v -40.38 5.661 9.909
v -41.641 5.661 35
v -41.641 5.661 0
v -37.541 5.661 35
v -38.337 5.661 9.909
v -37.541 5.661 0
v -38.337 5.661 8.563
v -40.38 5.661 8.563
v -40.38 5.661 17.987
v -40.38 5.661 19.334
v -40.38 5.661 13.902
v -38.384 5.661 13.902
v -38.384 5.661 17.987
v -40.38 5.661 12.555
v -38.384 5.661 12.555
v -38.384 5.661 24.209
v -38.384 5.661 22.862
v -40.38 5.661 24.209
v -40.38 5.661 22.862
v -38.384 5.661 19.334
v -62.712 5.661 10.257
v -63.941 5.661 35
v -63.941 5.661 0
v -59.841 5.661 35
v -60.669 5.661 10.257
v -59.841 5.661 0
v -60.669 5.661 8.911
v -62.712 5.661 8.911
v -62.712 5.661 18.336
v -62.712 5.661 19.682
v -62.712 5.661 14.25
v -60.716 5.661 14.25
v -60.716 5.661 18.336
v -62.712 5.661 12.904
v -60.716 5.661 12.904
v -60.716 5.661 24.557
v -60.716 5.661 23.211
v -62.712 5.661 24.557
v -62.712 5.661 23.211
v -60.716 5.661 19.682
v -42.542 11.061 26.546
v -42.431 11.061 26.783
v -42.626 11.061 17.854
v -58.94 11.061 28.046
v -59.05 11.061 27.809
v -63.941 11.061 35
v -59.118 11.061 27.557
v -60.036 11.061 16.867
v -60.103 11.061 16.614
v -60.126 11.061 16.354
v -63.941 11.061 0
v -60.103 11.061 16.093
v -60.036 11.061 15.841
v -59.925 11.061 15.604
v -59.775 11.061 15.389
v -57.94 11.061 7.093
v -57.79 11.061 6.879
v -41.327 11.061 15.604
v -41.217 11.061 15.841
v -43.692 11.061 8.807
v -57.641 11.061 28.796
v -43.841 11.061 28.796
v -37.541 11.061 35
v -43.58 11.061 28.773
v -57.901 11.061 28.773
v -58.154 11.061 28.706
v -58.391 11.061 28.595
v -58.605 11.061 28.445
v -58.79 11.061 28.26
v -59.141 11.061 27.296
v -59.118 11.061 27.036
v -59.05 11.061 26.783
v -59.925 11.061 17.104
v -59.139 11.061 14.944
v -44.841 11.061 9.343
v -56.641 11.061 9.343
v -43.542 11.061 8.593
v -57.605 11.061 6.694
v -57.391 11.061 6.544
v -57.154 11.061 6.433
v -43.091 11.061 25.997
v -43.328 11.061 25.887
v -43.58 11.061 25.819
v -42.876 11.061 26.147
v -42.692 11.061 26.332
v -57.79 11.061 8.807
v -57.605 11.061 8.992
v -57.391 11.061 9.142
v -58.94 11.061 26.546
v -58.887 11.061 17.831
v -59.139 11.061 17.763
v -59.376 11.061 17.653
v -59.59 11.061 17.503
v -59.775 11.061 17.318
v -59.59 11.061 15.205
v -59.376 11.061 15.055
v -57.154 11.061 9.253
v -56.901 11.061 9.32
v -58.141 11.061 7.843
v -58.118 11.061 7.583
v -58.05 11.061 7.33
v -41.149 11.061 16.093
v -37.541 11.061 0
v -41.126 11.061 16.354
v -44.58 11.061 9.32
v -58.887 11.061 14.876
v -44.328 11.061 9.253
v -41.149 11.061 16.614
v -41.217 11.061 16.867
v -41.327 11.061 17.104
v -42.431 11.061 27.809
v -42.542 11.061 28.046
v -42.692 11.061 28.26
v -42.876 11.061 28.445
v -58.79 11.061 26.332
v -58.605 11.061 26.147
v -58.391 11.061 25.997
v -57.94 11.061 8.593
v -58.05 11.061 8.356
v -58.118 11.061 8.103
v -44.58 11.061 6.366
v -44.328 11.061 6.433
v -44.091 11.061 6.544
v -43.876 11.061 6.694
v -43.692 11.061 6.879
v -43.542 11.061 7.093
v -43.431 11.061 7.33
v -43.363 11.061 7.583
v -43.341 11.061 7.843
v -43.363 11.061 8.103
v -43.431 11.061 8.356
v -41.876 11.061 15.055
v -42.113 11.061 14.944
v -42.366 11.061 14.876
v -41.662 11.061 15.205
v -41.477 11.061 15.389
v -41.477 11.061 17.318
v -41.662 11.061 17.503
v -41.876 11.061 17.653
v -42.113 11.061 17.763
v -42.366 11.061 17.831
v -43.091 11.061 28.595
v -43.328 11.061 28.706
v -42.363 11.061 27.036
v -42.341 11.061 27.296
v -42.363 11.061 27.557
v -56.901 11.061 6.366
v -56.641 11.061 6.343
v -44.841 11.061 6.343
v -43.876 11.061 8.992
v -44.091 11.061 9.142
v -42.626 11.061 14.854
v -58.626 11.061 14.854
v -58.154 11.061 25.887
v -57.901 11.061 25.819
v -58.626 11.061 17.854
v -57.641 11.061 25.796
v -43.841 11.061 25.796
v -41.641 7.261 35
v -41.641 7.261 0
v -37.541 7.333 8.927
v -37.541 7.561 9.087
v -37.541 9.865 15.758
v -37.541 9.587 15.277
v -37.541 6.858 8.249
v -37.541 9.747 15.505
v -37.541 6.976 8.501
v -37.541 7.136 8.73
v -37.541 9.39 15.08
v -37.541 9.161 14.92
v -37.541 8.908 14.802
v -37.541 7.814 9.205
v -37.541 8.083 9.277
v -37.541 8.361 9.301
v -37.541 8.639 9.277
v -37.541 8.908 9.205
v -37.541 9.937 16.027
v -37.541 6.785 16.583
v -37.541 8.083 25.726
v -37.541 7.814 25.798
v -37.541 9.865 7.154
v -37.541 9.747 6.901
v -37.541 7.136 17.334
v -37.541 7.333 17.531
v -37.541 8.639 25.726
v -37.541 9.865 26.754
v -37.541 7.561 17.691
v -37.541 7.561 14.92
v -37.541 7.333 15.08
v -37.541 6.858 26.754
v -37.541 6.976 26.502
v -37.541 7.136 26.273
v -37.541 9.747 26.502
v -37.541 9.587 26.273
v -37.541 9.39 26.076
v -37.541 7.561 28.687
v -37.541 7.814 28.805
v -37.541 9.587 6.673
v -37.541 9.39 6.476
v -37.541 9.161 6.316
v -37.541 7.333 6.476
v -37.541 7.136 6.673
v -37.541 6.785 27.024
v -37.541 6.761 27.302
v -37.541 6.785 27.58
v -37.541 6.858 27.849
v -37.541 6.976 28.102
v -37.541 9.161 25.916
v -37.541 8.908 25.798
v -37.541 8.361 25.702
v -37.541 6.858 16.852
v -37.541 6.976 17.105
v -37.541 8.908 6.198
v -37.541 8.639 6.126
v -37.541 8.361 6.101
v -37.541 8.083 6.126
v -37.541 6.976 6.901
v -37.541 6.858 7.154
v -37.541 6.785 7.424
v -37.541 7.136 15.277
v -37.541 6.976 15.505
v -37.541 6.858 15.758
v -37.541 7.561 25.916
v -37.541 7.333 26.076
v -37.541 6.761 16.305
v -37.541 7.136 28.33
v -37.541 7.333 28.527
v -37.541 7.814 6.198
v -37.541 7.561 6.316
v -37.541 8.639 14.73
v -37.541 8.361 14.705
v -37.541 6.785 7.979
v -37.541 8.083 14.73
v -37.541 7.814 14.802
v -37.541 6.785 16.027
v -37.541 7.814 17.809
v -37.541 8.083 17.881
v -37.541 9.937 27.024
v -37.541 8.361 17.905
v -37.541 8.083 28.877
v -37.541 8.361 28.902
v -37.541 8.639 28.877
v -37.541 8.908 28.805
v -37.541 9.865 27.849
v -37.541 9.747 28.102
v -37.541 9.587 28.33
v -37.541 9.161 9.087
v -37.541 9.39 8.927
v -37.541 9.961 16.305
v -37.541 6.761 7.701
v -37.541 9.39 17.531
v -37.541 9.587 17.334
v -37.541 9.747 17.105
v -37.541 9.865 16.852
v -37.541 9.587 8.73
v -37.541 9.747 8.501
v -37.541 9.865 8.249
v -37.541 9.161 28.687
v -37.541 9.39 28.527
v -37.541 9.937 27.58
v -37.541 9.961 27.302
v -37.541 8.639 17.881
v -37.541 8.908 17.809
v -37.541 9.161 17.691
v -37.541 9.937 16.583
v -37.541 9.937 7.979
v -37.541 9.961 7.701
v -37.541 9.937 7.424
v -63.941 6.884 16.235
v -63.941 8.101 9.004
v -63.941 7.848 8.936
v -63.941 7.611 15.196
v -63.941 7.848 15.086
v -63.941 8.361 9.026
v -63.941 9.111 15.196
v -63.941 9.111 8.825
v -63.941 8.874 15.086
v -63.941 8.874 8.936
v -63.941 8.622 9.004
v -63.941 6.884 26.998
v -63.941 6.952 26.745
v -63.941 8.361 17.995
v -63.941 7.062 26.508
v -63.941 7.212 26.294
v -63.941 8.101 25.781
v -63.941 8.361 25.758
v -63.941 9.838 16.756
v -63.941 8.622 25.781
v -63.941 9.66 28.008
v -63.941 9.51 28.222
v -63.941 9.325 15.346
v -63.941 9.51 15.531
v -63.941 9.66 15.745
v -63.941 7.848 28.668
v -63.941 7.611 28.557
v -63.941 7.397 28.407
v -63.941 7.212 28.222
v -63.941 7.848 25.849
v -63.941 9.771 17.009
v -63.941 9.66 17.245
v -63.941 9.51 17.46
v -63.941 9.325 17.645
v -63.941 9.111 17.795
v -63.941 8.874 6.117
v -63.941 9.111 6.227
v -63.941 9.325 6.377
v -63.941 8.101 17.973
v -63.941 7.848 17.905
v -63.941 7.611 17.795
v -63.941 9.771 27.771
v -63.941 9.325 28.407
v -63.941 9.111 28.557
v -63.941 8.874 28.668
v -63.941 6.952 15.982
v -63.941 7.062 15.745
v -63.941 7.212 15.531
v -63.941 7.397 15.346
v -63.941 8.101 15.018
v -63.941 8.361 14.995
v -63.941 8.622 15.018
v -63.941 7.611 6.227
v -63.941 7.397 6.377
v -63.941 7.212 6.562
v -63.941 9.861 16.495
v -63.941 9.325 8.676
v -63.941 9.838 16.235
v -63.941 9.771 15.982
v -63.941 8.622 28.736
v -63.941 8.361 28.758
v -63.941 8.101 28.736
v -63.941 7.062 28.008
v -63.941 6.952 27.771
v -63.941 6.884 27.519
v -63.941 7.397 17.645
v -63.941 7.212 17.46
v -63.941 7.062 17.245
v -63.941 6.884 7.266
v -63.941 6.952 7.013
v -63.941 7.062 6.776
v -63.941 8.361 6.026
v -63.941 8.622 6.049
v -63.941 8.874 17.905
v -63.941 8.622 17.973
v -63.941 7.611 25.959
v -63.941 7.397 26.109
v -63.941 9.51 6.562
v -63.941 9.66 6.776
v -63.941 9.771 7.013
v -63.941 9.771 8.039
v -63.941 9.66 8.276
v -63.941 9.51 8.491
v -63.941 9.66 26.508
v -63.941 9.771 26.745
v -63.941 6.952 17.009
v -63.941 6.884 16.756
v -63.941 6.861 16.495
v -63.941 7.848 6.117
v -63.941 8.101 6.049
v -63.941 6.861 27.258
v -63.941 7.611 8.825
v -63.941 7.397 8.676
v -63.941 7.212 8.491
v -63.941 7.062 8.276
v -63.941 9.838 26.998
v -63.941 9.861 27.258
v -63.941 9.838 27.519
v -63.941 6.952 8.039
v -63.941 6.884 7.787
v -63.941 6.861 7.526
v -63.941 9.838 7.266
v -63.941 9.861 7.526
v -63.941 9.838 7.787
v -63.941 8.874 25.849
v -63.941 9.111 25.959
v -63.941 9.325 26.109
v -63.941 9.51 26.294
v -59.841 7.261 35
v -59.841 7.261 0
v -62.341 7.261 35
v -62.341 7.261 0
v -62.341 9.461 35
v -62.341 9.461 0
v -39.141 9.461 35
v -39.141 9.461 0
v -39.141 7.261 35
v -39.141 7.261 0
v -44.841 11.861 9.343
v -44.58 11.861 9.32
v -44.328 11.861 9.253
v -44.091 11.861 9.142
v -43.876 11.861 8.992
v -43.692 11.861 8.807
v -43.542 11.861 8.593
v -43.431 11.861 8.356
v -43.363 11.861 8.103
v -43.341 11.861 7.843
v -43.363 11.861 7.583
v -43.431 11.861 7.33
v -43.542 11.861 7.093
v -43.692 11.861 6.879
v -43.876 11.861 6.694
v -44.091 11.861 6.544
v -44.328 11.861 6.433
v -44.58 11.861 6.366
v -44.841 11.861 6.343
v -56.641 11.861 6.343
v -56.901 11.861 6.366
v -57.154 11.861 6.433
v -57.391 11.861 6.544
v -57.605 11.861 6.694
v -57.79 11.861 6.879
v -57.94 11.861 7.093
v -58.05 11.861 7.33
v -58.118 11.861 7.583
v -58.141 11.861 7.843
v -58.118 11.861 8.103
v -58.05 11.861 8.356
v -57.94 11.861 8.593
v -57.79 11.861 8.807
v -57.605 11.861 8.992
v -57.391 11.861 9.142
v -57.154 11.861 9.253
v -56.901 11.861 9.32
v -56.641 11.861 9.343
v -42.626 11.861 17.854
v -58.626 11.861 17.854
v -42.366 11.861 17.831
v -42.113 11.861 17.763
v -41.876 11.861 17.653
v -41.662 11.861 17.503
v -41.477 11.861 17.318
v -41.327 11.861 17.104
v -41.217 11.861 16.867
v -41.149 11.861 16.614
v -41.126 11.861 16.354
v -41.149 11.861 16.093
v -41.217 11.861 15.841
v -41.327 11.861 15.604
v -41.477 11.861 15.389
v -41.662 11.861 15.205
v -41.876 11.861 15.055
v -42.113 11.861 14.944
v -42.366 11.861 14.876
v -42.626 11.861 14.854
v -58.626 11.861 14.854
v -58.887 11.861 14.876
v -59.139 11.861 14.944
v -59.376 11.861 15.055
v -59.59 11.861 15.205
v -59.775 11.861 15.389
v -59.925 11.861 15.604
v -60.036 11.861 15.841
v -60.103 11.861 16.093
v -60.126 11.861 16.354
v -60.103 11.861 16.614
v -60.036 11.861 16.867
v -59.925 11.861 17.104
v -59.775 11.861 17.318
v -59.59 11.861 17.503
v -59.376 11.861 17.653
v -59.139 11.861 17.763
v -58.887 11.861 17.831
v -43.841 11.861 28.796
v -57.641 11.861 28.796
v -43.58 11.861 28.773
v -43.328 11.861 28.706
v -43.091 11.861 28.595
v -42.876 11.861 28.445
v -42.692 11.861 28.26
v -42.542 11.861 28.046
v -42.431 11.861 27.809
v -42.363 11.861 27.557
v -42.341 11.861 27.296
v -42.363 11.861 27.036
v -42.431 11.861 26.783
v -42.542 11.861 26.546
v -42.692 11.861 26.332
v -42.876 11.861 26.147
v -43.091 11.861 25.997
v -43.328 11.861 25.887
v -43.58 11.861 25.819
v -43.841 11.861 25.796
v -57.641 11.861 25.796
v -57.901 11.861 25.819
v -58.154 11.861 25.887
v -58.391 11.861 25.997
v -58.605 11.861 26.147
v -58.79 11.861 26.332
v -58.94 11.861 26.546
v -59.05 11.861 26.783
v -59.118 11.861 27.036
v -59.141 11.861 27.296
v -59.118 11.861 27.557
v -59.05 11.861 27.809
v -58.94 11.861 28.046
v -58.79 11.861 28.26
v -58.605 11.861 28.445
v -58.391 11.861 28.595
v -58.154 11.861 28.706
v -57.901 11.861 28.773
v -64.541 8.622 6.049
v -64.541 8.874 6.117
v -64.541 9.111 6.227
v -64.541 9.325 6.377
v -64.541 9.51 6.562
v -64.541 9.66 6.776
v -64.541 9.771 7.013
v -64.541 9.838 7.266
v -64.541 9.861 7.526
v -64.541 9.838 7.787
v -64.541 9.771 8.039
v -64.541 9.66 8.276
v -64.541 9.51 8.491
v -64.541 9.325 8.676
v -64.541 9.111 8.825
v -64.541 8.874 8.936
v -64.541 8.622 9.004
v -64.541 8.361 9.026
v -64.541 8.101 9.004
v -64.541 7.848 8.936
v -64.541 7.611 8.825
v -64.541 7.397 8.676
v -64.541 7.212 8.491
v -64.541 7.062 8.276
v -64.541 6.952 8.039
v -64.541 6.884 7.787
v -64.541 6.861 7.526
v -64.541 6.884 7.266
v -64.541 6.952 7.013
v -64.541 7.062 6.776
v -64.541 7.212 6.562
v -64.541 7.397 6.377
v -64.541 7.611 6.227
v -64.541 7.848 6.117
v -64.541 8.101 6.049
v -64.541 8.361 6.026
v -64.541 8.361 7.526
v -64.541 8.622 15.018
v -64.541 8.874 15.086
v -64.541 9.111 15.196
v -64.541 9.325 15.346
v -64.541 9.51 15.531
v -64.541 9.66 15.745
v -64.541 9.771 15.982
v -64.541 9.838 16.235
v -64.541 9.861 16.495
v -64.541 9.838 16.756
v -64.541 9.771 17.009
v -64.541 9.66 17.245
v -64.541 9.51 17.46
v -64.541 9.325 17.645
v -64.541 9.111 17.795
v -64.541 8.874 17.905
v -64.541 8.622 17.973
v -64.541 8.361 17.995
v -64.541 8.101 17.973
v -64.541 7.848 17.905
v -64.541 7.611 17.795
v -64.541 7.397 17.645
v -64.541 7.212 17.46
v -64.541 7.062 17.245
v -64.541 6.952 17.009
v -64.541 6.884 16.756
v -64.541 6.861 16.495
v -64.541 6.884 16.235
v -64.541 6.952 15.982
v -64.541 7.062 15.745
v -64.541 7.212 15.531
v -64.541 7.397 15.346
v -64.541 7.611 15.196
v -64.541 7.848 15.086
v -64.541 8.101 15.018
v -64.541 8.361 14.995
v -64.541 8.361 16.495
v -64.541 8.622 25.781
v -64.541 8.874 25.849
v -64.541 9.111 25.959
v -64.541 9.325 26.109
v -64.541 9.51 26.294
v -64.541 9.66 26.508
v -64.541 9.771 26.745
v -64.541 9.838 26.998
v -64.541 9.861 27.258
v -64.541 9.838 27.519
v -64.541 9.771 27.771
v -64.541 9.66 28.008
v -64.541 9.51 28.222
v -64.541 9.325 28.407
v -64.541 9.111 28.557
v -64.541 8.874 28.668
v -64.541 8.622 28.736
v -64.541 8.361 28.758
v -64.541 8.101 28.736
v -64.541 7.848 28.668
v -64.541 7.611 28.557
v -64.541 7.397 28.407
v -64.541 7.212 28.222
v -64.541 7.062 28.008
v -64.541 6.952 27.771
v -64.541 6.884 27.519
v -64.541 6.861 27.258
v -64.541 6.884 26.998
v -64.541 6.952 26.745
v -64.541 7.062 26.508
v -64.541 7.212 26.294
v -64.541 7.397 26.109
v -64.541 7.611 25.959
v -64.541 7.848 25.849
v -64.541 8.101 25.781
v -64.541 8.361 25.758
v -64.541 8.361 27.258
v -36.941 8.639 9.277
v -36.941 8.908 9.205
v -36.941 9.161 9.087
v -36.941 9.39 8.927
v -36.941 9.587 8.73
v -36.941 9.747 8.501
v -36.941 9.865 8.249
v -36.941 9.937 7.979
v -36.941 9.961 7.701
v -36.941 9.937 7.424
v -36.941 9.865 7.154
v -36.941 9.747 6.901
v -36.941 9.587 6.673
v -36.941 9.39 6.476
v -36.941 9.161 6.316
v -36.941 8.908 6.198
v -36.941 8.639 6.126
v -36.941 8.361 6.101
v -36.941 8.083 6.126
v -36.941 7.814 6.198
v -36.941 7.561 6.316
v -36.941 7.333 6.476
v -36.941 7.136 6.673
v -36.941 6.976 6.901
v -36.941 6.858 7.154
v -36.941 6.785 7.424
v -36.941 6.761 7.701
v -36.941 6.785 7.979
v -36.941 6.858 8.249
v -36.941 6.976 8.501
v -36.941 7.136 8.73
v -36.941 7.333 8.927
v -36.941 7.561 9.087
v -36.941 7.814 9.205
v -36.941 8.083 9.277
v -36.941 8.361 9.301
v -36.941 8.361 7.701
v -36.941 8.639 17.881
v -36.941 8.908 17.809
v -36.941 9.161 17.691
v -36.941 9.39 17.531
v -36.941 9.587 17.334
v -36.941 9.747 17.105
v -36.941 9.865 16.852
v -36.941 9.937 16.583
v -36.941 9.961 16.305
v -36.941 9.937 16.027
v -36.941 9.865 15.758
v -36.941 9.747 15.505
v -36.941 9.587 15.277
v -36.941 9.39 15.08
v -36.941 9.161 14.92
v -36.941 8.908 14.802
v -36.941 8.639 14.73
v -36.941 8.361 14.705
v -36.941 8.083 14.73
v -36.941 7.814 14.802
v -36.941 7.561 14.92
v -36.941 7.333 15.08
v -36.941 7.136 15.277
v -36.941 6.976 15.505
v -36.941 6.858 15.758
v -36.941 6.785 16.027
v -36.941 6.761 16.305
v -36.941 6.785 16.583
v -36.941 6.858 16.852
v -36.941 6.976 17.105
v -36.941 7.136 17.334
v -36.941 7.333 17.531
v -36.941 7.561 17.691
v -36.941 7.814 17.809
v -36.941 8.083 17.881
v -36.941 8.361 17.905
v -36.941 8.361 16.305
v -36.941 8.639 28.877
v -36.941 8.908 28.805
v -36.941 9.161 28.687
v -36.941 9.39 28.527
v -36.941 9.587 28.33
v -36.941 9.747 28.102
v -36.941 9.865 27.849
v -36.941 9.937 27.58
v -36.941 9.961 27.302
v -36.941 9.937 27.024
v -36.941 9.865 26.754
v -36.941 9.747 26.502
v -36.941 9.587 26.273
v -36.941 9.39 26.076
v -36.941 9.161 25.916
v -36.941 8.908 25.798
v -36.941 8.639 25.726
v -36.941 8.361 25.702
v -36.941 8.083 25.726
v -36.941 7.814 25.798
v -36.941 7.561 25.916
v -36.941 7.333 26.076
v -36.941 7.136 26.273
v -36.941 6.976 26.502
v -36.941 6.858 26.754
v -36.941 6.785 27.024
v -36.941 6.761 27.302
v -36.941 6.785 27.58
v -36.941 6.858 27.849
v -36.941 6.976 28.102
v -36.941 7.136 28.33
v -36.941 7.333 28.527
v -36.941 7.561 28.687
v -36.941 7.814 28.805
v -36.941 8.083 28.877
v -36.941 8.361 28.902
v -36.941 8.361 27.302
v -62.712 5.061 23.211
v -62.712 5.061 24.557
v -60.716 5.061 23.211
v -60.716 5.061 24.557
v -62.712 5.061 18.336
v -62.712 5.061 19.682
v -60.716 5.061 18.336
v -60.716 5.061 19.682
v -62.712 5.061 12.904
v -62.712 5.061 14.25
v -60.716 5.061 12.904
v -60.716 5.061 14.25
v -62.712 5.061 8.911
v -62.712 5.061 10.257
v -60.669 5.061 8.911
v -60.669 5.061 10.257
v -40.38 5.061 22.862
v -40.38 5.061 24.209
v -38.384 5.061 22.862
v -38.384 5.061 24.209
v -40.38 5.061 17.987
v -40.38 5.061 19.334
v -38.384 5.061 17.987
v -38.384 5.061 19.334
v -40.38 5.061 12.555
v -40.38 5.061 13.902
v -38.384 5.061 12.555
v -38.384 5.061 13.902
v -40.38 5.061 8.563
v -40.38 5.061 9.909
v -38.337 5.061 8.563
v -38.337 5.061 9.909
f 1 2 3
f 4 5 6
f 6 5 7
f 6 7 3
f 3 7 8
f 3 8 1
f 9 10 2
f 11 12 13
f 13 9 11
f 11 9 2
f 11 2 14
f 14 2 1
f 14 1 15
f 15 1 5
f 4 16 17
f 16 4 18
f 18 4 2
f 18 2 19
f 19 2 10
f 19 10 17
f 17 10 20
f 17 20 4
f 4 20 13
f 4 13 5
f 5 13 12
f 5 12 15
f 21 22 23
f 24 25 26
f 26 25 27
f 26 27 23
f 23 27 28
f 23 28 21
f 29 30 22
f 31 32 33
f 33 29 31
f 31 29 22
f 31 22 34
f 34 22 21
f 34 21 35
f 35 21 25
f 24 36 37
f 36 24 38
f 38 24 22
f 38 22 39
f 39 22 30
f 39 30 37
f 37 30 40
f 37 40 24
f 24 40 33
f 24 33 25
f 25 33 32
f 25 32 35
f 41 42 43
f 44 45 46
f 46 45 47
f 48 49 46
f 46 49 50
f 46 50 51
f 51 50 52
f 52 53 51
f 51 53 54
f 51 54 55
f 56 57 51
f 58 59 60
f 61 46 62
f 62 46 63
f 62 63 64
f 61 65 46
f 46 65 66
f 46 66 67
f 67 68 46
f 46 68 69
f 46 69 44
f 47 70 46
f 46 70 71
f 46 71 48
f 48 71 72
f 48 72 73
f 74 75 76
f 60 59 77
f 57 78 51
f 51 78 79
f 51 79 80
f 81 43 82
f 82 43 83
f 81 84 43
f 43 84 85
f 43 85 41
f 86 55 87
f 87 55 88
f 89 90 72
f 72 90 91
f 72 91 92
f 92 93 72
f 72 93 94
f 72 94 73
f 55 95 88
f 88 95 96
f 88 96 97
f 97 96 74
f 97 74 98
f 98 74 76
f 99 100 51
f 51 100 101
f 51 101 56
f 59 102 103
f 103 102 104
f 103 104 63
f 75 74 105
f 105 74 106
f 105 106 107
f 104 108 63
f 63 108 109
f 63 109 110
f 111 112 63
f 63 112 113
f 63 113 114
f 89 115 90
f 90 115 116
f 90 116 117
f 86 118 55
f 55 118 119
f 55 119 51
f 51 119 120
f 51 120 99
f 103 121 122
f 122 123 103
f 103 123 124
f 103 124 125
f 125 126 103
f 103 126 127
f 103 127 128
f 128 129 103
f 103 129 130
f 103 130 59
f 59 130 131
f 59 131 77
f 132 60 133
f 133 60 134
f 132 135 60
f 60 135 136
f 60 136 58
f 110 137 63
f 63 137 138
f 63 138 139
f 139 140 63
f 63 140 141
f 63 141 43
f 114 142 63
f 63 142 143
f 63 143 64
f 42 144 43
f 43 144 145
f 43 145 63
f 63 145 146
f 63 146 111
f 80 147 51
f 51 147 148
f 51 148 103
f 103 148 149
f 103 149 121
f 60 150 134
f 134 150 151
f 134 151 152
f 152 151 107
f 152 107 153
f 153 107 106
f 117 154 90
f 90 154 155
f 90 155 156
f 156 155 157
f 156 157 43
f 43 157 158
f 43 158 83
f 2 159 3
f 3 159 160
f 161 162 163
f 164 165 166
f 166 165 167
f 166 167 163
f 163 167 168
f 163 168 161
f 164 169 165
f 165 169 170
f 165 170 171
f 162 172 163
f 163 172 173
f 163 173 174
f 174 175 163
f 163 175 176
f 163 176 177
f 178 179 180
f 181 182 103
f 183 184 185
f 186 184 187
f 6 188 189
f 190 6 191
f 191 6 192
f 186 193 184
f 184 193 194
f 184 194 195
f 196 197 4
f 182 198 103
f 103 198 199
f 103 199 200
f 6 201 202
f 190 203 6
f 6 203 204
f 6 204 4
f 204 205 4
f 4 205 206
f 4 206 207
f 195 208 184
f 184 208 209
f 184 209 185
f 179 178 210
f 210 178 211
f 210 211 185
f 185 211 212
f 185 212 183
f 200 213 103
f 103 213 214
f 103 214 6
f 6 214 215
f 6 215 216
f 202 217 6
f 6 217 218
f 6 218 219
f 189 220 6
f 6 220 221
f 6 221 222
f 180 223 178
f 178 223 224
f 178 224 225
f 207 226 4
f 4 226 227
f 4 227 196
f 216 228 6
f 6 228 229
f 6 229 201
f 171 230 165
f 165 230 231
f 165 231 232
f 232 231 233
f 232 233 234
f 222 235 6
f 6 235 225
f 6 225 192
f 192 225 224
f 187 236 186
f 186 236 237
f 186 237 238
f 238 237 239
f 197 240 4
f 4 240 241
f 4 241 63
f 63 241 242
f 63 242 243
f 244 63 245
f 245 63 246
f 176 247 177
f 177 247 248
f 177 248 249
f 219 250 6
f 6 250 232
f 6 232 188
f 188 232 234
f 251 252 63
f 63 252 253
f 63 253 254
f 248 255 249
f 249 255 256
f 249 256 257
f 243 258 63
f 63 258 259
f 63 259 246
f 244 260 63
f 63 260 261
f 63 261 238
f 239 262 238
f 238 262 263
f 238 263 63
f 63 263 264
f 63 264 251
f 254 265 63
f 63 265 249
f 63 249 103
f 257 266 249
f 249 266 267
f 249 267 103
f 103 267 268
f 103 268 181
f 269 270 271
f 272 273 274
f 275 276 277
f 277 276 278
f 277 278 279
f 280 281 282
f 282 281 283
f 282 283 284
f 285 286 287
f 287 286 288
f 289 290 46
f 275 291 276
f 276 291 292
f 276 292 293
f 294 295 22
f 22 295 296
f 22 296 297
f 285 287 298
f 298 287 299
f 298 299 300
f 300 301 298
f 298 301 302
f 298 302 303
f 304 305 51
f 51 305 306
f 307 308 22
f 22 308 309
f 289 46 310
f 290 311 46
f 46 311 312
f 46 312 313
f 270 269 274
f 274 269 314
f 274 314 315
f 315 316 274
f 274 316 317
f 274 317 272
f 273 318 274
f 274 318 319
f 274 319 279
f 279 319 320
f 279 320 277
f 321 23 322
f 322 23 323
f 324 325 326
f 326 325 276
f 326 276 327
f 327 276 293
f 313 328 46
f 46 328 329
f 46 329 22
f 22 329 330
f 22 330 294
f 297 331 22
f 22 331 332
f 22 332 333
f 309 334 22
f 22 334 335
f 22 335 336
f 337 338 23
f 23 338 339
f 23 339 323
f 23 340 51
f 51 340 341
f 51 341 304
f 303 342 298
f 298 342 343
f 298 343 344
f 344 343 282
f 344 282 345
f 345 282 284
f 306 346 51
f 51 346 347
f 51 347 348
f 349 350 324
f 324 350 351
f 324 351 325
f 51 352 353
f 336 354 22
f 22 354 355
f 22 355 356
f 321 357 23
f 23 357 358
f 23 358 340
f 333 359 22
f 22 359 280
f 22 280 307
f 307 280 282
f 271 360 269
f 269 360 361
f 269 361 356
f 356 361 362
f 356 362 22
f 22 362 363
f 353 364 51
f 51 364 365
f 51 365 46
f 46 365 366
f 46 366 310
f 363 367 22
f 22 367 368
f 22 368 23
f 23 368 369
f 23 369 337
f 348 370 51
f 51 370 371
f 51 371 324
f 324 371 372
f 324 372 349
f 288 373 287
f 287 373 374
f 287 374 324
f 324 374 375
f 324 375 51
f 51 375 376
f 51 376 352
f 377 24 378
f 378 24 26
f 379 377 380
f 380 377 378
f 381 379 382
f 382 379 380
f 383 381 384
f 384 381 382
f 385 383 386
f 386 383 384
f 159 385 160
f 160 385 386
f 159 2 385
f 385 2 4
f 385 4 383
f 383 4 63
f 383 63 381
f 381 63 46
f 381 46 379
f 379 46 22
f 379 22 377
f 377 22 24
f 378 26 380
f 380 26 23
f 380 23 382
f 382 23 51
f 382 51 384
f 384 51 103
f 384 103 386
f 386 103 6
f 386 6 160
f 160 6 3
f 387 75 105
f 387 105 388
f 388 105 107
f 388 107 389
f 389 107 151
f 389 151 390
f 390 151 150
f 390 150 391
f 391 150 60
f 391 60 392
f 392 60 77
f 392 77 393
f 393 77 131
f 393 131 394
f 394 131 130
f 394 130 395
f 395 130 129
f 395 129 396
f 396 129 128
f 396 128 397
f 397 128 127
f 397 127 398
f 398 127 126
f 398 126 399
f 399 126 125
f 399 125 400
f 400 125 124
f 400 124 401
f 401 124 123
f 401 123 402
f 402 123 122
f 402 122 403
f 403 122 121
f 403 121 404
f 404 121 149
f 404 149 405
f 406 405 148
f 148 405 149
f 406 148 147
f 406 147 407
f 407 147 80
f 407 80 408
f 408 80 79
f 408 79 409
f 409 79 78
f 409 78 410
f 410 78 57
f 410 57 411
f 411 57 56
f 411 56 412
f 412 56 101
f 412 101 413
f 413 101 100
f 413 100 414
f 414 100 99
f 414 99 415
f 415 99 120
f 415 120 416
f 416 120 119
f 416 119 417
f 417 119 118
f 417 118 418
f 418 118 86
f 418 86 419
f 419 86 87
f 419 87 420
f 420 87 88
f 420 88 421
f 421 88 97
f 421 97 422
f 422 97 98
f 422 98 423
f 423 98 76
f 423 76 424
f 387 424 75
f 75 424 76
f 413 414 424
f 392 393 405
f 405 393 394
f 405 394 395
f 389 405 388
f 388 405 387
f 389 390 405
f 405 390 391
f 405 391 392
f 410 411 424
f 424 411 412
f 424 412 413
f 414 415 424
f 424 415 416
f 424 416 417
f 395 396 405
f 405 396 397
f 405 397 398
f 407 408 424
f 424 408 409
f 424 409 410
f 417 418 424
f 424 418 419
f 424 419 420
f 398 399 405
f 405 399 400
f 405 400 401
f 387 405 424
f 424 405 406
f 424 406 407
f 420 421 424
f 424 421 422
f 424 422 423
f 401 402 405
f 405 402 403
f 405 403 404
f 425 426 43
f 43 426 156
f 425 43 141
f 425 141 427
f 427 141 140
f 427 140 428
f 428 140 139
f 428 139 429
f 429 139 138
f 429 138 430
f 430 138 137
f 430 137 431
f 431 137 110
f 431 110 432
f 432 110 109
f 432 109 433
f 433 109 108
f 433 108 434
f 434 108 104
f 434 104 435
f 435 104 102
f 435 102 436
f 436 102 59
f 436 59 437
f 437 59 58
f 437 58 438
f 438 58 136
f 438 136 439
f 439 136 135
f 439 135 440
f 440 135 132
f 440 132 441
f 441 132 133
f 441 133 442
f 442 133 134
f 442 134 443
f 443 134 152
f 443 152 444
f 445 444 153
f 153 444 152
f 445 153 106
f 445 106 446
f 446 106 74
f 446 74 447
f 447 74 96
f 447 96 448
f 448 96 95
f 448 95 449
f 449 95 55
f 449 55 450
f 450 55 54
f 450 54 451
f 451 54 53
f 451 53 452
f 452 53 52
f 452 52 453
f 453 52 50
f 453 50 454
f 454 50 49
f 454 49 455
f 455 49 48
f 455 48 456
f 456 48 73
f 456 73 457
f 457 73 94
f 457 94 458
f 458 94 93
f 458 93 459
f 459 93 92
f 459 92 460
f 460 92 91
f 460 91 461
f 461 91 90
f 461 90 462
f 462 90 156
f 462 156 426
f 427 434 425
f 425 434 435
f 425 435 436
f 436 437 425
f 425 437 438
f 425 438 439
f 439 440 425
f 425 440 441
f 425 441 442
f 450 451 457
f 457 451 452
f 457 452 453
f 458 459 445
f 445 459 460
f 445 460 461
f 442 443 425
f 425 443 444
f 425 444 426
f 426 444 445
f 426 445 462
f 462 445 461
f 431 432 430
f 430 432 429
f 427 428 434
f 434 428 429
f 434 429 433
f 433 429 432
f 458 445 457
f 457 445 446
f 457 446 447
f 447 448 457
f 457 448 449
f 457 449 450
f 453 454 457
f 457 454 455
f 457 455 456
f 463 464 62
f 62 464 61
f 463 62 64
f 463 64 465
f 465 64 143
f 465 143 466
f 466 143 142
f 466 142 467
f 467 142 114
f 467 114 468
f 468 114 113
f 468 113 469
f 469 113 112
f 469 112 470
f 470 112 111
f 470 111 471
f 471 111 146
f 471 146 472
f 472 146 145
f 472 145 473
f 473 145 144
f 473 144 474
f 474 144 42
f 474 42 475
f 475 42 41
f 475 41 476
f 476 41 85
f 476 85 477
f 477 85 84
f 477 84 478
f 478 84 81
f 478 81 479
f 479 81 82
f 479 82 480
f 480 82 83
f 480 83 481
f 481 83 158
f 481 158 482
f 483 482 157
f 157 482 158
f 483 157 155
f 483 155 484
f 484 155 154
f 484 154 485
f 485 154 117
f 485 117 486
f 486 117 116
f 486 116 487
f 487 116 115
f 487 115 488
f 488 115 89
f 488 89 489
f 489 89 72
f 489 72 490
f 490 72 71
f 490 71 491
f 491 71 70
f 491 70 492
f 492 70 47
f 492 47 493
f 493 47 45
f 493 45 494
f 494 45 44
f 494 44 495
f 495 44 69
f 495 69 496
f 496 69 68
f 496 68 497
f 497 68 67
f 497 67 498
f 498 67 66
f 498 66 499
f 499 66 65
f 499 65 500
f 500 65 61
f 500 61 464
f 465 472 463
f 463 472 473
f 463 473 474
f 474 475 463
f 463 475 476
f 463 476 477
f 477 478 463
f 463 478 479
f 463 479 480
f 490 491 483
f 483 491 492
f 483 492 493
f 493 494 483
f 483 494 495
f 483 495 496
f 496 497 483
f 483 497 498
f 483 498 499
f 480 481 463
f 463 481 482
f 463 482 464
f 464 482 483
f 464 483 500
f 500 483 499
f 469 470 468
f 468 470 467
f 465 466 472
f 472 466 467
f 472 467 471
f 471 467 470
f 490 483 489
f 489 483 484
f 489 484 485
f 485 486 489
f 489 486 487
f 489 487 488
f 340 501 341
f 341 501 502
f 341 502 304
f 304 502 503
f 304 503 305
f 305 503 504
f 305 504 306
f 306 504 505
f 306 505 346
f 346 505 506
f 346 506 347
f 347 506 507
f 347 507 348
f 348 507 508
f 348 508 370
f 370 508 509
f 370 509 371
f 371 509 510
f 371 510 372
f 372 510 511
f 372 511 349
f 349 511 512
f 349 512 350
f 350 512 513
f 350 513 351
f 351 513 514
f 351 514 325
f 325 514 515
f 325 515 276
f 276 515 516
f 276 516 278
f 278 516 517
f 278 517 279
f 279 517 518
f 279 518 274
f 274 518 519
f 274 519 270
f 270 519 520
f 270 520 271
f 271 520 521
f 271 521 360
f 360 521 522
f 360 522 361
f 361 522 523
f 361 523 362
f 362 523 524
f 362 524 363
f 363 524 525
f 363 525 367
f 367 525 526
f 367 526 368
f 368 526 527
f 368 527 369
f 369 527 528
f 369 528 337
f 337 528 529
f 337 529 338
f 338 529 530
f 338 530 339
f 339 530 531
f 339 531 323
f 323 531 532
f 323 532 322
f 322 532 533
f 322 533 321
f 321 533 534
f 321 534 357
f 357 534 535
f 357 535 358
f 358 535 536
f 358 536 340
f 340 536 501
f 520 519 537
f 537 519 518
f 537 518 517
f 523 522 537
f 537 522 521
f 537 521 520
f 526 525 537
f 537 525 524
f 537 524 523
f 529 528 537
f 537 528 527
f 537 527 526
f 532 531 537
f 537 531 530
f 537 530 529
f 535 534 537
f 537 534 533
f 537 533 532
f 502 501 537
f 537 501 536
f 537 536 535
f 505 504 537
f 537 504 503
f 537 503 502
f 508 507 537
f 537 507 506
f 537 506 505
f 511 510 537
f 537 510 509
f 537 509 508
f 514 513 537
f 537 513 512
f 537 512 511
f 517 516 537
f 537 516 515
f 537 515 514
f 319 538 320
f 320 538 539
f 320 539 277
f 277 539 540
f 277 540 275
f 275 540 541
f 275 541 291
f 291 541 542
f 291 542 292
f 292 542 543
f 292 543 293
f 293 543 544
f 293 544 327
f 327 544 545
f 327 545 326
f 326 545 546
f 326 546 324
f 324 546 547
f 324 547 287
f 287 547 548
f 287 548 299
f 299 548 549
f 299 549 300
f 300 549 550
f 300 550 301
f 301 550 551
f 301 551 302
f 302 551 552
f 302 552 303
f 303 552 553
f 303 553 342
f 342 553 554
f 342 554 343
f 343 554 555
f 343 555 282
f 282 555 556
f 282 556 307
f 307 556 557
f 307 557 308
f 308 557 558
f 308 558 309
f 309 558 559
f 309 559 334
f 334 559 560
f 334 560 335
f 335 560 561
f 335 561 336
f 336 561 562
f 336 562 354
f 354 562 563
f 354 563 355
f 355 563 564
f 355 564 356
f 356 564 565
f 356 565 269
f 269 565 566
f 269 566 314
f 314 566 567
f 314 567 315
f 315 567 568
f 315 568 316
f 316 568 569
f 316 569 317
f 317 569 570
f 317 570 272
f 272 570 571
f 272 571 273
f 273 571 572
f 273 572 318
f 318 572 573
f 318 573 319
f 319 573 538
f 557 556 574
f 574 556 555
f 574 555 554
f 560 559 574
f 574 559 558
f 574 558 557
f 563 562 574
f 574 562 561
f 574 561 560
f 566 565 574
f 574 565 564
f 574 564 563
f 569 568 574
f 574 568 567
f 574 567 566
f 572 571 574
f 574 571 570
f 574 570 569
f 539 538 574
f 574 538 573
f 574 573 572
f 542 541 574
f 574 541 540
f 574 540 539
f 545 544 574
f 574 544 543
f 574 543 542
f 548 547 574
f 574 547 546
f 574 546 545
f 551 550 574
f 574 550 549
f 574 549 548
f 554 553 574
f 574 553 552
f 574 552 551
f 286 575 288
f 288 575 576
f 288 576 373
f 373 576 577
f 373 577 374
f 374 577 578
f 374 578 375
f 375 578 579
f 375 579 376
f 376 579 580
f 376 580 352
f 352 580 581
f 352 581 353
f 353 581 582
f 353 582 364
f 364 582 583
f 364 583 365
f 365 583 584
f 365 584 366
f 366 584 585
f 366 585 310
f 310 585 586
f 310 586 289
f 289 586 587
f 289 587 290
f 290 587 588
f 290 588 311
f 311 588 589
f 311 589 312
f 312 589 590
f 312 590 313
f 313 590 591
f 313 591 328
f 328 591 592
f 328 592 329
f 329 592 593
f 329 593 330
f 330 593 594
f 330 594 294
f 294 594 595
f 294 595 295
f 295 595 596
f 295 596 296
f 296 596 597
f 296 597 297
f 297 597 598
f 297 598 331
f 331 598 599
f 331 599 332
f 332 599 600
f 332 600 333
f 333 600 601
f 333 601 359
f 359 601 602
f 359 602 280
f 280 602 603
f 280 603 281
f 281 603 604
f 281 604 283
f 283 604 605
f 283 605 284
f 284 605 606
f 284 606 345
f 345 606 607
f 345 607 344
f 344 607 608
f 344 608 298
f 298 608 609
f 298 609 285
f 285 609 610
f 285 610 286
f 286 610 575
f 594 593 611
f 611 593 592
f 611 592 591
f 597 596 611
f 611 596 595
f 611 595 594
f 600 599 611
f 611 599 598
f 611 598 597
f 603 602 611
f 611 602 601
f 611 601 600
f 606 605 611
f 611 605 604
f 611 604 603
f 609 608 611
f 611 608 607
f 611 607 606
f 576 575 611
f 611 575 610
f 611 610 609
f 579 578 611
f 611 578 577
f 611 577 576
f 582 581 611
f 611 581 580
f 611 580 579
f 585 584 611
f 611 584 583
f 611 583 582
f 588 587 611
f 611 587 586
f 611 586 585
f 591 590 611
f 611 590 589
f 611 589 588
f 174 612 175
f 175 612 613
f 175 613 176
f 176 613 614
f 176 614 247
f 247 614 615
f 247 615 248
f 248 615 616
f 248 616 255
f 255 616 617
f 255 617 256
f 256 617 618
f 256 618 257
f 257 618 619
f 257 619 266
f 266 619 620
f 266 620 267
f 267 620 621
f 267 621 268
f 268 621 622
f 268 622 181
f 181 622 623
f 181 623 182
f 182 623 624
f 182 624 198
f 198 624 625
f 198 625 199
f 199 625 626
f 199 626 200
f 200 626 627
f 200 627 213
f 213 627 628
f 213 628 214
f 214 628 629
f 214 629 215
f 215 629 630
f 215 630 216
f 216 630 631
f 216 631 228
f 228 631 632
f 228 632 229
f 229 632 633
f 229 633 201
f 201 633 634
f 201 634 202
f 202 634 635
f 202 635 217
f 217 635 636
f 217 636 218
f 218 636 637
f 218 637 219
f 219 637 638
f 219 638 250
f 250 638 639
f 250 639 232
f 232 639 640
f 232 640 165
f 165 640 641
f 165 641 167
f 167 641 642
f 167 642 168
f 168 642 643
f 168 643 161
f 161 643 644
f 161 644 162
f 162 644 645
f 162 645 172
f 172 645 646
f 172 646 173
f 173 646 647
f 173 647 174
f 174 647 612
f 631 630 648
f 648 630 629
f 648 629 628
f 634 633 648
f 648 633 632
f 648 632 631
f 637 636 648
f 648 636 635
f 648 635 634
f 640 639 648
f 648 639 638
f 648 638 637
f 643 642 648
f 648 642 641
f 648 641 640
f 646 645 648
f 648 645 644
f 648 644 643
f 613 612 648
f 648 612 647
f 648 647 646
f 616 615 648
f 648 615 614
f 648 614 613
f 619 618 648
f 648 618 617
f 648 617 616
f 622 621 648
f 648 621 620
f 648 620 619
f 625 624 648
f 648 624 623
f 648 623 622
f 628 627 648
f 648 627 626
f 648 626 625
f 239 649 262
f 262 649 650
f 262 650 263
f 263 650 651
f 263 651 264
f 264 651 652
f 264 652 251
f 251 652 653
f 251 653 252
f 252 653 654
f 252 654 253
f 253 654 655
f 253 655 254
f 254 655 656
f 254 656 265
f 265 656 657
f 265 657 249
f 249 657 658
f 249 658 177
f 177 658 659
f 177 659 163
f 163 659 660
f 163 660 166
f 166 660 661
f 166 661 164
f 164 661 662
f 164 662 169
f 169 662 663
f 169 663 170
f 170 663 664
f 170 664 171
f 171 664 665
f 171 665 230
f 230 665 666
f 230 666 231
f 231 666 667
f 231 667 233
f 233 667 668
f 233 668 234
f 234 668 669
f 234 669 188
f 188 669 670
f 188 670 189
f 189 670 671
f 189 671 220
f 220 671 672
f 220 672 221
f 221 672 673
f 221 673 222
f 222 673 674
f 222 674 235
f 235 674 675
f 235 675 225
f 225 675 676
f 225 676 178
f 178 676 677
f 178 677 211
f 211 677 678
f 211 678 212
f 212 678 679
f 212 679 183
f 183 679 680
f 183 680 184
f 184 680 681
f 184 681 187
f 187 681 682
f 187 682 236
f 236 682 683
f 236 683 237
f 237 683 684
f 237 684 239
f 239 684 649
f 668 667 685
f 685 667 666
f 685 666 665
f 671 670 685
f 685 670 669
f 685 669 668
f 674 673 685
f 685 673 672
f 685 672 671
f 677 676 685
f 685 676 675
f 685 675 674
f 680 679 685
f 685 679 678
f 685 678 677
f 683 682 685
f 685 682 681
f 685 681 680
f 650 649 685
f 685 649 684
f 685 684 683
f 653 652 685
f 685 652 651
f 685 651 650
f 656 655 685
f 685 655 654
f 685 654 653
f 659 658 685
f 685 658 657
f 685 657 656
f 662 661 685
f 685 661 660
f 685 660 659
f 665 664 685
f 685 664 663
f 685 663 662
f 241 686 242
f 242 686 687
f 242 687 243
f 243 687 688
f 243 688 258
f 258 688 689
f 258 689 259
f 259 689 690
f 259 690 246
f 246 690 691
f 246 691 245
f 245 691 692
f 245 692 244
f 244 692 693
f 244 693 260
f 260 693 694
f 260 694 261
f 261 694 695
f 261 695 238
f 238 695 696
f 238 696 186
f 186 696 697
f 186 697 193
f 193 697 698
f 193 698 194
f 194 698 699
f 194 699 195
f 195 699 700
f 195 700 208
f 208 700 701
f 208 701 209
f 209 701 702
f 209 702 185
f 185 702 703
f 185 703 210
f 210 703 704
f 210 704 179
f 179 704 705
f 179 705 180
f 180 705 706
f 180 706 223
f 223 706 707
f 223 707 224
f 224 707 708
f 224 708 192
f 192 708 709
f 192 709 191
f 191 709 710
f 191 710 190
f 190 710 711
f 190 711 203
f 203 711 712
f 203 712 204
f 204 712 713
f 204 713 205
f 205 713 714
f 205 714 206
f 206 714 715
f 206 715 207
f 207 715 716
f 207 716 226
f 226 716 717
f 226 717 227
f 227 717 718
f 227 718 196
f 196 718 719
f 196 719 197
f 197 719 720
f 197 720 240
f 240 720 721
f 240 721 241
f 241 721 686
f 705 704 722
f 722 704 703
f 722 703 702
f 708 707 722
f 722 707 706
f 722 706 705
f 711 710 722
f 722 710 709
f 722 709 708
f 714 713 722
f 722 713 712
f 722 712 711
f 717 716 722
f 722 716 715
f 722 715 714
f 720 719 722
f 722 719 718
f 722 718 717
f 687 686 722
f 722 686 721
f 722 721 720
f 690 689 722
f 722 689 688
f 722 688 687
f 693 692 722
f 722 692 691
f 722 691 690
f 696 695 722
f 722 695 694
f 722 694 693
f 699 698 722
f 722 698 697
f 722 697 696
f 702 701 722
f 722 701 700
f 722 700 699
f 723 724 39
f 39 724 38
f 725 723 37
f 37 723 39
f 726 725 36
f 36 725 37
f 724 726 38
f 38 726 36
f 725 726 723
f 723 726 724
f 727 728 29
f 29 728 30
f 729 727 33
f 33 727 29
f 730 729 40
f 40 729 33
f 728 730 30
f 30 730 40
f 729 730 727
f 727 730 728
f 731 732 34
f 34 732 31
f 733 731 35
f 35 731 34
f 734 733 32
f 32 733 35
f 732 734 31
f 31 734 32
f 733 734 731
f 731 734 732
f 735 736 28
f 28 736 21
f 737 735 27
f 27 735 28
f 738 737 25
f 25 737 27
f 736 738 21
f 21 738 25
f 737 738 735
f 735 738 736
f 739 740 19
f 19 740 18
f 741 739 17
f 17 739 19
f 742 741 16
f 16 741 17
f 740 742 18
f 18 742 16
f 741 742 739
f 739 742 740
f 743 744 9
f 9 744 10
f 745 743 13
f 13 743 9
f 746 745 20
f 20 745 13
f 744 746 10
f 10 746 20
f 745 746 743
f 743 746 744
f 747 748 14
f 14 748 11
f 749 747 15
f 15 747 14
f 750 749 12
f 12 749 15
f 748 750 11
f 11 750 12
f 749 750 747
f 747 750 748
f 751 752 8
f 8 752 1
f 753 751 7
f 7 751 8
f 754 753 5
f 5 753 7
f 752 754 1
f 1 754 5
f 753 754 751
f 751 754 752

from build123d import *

# Parameters (mm, degrees)
BOSS_EXTRUDE1_DEPTH = 35
BOSS_EXTRUDE2_DEPTH = 0.8
SKETCH3_R           = 1.5
BOSS_EXTRUDE3_DEPTH = 0.6
SKETCH5_R           = 1.6
BOSS_EXTRUDE4_DEPTH = 0.6
SKETCH6_W           = 1.996397696
SKETCH6_H           = 1.346407749
SKETCH6_H_2         = 1.346407748
SKETCH6_W_2         = 2.042825549
BOSS_EXTRUDE5_DEPTH = 0.6


with BuildPart() as part:
    # Sketch1 → Boss-Extrude1 (new body)
    with BuildSketch(Plane.XY):
        Polygon((-59.84066795, 5.661190292), (-59.84066795, 7.261190292), (-62.34066795, 7.261190292), (-62.34066795, 9.461190292), (-39.14066795, 9.461190292), (-39.14066795, 7.261190292), (-41.64066795, 7.261190292), (-41.64066795, 5.661190292), (-37.54066795, 5.661190292), (-37.54066795, 11.061190292), (-63.94066795, 11.061190292), (-63.94066795, 5.661190292), align=None)
    extrude(amount=BOSS_EXTRUDE1_DEPTH)

    # Sketch2 → Boss-Extrude2 (add)
    with BuildSketch(Plane(origin=(0, 11.061190292, 0), x_dir=(1, 0, 0), z_dir=(0, 1, 0))):
        with BuildLine():
            Line((-56.64066795, -9.343006494), (-44.84066795, -9.343006494))
            ThreePointArc((-44.84066795, -9.343006494), (-43.34066795, -7.843006494), (-44.84066795, -6.343006494))
            Line((-44.84066795, -6.343006494), (-56.64066795, -6.343006494))
            ThreePointArc((-56.64066795, -6.343006494), (-58.14066795, -7.843006494), (-56.64066795, -9.343006494))
        make_face()
        with BuildLine():
            Line((-58.626258735, -17.853612356), (-42.626258735, -17.853612356))
            ThreePointArc((-42.626258735, -17.853612356), (-41.126258735, -16.353612356), (-42.626258735, -14.853612356))
            Line((-42.626258735, -14.853612356), (-58.626258735, -14.853612356))
            ThreePointArc((-58.626258735, -14.853612356), (-60.126258735, -16.353612356), (-58.626258735, -17.853612356))
        make_face()
        with BuildLine():
            Line((-57.64066795, -28.796277067), (-43.84066795, -28.796277067))
            ThreePointArc((-43.84066795, -28.796277067), (-42.34066795, -27.296277067), (-43.84066795, -25.796277067))
            Line((-43.84066795, -25.796277067), (-57.64066795, -25.796277067))
            ThreePointArc((-57.64066795, -25.796277067), (-59.14066795, -27.296277067), (-57.64066795, -28.796277067))
        make_face()
    extrude(amount=BOSS_EXTRUDE2_DEPTH)

    # Sketch3 → Boss-Extrude3 (add)
    with BuildSketch(Plane.ZY.offset(63.94066795)):
        with Locations((7.526452948, 8.361190292)):
            Circle(SKETCH3_R)
        with Locations((16.495470081, 8.361190292)):
            Circle(SKETCH3_R)
        with Locations((27.258290641, 8.361190292)):
            Circle(SKETCH3_R)
    extrude(amount=BOSS_EXTRUDE3_DEPTH)

    # Sketch5 → Boss-Extrude4 (add)
    with BuildSketch(Plane(origin=(-37.54066795, 0, 0), x_dir=(0, 0, -1), z_dir=(1, 0, 0))):
        with Locations((-27.301707085, 8.361190292)):
            Circle(SKETCH5_R)
        with Locations((-16.305217257, 8.361190292)):
            Circle(SKETCH5_R)
        with Locations((-7.70148216, 8.361190292)):
            Circle(SKETCH5_R)
    extrude(amount=BOSS_EXTRUDE4_DEPTH)

    # Sketch6 → Boss-Extrude5 (add)
    with BuildSketch(Plane.XZ.offset(-5.661190292)):
        with Locations((-39.381913502, 23.535620941)):
            Rectangle(SKETCH6_W, SKETCH6_H)
        with Locations((-61.713710985, 23.883829842)):
            Rectangle(SKETCH6_W, SKETCH6_H_2)
        with Locations((-61.713710985, 19.008905236)):
            Rectangle(SKETCH6_W, SKETCH6_H)
        with Locations((-61.713710985, 13.576846388)):
            Rectangle(SKETCH6_W, SKETCH6_H_2)
        with Locations((-61.690497059, 9.584050996)):
            Rectangle(SKETCH6_W_2, SKETCH6_H_2)
        with Locations((-39.381913502, 18.660696335)):
            Rectangle(SKETCH6_W, SKETCH6_H_2)
        with Locations((-39.381913502, 13.228637488)):
            Rectangle(SKETCH6_W, SKETCH6_H)
        with Locations((-39.358699576, 9.235842096)):
            Rectangle(SKETCH6_W_2, SKETCH6_H)
    extrude(amount=BOSS_EXTRUDE5_DEPTH)


solid = part.part
